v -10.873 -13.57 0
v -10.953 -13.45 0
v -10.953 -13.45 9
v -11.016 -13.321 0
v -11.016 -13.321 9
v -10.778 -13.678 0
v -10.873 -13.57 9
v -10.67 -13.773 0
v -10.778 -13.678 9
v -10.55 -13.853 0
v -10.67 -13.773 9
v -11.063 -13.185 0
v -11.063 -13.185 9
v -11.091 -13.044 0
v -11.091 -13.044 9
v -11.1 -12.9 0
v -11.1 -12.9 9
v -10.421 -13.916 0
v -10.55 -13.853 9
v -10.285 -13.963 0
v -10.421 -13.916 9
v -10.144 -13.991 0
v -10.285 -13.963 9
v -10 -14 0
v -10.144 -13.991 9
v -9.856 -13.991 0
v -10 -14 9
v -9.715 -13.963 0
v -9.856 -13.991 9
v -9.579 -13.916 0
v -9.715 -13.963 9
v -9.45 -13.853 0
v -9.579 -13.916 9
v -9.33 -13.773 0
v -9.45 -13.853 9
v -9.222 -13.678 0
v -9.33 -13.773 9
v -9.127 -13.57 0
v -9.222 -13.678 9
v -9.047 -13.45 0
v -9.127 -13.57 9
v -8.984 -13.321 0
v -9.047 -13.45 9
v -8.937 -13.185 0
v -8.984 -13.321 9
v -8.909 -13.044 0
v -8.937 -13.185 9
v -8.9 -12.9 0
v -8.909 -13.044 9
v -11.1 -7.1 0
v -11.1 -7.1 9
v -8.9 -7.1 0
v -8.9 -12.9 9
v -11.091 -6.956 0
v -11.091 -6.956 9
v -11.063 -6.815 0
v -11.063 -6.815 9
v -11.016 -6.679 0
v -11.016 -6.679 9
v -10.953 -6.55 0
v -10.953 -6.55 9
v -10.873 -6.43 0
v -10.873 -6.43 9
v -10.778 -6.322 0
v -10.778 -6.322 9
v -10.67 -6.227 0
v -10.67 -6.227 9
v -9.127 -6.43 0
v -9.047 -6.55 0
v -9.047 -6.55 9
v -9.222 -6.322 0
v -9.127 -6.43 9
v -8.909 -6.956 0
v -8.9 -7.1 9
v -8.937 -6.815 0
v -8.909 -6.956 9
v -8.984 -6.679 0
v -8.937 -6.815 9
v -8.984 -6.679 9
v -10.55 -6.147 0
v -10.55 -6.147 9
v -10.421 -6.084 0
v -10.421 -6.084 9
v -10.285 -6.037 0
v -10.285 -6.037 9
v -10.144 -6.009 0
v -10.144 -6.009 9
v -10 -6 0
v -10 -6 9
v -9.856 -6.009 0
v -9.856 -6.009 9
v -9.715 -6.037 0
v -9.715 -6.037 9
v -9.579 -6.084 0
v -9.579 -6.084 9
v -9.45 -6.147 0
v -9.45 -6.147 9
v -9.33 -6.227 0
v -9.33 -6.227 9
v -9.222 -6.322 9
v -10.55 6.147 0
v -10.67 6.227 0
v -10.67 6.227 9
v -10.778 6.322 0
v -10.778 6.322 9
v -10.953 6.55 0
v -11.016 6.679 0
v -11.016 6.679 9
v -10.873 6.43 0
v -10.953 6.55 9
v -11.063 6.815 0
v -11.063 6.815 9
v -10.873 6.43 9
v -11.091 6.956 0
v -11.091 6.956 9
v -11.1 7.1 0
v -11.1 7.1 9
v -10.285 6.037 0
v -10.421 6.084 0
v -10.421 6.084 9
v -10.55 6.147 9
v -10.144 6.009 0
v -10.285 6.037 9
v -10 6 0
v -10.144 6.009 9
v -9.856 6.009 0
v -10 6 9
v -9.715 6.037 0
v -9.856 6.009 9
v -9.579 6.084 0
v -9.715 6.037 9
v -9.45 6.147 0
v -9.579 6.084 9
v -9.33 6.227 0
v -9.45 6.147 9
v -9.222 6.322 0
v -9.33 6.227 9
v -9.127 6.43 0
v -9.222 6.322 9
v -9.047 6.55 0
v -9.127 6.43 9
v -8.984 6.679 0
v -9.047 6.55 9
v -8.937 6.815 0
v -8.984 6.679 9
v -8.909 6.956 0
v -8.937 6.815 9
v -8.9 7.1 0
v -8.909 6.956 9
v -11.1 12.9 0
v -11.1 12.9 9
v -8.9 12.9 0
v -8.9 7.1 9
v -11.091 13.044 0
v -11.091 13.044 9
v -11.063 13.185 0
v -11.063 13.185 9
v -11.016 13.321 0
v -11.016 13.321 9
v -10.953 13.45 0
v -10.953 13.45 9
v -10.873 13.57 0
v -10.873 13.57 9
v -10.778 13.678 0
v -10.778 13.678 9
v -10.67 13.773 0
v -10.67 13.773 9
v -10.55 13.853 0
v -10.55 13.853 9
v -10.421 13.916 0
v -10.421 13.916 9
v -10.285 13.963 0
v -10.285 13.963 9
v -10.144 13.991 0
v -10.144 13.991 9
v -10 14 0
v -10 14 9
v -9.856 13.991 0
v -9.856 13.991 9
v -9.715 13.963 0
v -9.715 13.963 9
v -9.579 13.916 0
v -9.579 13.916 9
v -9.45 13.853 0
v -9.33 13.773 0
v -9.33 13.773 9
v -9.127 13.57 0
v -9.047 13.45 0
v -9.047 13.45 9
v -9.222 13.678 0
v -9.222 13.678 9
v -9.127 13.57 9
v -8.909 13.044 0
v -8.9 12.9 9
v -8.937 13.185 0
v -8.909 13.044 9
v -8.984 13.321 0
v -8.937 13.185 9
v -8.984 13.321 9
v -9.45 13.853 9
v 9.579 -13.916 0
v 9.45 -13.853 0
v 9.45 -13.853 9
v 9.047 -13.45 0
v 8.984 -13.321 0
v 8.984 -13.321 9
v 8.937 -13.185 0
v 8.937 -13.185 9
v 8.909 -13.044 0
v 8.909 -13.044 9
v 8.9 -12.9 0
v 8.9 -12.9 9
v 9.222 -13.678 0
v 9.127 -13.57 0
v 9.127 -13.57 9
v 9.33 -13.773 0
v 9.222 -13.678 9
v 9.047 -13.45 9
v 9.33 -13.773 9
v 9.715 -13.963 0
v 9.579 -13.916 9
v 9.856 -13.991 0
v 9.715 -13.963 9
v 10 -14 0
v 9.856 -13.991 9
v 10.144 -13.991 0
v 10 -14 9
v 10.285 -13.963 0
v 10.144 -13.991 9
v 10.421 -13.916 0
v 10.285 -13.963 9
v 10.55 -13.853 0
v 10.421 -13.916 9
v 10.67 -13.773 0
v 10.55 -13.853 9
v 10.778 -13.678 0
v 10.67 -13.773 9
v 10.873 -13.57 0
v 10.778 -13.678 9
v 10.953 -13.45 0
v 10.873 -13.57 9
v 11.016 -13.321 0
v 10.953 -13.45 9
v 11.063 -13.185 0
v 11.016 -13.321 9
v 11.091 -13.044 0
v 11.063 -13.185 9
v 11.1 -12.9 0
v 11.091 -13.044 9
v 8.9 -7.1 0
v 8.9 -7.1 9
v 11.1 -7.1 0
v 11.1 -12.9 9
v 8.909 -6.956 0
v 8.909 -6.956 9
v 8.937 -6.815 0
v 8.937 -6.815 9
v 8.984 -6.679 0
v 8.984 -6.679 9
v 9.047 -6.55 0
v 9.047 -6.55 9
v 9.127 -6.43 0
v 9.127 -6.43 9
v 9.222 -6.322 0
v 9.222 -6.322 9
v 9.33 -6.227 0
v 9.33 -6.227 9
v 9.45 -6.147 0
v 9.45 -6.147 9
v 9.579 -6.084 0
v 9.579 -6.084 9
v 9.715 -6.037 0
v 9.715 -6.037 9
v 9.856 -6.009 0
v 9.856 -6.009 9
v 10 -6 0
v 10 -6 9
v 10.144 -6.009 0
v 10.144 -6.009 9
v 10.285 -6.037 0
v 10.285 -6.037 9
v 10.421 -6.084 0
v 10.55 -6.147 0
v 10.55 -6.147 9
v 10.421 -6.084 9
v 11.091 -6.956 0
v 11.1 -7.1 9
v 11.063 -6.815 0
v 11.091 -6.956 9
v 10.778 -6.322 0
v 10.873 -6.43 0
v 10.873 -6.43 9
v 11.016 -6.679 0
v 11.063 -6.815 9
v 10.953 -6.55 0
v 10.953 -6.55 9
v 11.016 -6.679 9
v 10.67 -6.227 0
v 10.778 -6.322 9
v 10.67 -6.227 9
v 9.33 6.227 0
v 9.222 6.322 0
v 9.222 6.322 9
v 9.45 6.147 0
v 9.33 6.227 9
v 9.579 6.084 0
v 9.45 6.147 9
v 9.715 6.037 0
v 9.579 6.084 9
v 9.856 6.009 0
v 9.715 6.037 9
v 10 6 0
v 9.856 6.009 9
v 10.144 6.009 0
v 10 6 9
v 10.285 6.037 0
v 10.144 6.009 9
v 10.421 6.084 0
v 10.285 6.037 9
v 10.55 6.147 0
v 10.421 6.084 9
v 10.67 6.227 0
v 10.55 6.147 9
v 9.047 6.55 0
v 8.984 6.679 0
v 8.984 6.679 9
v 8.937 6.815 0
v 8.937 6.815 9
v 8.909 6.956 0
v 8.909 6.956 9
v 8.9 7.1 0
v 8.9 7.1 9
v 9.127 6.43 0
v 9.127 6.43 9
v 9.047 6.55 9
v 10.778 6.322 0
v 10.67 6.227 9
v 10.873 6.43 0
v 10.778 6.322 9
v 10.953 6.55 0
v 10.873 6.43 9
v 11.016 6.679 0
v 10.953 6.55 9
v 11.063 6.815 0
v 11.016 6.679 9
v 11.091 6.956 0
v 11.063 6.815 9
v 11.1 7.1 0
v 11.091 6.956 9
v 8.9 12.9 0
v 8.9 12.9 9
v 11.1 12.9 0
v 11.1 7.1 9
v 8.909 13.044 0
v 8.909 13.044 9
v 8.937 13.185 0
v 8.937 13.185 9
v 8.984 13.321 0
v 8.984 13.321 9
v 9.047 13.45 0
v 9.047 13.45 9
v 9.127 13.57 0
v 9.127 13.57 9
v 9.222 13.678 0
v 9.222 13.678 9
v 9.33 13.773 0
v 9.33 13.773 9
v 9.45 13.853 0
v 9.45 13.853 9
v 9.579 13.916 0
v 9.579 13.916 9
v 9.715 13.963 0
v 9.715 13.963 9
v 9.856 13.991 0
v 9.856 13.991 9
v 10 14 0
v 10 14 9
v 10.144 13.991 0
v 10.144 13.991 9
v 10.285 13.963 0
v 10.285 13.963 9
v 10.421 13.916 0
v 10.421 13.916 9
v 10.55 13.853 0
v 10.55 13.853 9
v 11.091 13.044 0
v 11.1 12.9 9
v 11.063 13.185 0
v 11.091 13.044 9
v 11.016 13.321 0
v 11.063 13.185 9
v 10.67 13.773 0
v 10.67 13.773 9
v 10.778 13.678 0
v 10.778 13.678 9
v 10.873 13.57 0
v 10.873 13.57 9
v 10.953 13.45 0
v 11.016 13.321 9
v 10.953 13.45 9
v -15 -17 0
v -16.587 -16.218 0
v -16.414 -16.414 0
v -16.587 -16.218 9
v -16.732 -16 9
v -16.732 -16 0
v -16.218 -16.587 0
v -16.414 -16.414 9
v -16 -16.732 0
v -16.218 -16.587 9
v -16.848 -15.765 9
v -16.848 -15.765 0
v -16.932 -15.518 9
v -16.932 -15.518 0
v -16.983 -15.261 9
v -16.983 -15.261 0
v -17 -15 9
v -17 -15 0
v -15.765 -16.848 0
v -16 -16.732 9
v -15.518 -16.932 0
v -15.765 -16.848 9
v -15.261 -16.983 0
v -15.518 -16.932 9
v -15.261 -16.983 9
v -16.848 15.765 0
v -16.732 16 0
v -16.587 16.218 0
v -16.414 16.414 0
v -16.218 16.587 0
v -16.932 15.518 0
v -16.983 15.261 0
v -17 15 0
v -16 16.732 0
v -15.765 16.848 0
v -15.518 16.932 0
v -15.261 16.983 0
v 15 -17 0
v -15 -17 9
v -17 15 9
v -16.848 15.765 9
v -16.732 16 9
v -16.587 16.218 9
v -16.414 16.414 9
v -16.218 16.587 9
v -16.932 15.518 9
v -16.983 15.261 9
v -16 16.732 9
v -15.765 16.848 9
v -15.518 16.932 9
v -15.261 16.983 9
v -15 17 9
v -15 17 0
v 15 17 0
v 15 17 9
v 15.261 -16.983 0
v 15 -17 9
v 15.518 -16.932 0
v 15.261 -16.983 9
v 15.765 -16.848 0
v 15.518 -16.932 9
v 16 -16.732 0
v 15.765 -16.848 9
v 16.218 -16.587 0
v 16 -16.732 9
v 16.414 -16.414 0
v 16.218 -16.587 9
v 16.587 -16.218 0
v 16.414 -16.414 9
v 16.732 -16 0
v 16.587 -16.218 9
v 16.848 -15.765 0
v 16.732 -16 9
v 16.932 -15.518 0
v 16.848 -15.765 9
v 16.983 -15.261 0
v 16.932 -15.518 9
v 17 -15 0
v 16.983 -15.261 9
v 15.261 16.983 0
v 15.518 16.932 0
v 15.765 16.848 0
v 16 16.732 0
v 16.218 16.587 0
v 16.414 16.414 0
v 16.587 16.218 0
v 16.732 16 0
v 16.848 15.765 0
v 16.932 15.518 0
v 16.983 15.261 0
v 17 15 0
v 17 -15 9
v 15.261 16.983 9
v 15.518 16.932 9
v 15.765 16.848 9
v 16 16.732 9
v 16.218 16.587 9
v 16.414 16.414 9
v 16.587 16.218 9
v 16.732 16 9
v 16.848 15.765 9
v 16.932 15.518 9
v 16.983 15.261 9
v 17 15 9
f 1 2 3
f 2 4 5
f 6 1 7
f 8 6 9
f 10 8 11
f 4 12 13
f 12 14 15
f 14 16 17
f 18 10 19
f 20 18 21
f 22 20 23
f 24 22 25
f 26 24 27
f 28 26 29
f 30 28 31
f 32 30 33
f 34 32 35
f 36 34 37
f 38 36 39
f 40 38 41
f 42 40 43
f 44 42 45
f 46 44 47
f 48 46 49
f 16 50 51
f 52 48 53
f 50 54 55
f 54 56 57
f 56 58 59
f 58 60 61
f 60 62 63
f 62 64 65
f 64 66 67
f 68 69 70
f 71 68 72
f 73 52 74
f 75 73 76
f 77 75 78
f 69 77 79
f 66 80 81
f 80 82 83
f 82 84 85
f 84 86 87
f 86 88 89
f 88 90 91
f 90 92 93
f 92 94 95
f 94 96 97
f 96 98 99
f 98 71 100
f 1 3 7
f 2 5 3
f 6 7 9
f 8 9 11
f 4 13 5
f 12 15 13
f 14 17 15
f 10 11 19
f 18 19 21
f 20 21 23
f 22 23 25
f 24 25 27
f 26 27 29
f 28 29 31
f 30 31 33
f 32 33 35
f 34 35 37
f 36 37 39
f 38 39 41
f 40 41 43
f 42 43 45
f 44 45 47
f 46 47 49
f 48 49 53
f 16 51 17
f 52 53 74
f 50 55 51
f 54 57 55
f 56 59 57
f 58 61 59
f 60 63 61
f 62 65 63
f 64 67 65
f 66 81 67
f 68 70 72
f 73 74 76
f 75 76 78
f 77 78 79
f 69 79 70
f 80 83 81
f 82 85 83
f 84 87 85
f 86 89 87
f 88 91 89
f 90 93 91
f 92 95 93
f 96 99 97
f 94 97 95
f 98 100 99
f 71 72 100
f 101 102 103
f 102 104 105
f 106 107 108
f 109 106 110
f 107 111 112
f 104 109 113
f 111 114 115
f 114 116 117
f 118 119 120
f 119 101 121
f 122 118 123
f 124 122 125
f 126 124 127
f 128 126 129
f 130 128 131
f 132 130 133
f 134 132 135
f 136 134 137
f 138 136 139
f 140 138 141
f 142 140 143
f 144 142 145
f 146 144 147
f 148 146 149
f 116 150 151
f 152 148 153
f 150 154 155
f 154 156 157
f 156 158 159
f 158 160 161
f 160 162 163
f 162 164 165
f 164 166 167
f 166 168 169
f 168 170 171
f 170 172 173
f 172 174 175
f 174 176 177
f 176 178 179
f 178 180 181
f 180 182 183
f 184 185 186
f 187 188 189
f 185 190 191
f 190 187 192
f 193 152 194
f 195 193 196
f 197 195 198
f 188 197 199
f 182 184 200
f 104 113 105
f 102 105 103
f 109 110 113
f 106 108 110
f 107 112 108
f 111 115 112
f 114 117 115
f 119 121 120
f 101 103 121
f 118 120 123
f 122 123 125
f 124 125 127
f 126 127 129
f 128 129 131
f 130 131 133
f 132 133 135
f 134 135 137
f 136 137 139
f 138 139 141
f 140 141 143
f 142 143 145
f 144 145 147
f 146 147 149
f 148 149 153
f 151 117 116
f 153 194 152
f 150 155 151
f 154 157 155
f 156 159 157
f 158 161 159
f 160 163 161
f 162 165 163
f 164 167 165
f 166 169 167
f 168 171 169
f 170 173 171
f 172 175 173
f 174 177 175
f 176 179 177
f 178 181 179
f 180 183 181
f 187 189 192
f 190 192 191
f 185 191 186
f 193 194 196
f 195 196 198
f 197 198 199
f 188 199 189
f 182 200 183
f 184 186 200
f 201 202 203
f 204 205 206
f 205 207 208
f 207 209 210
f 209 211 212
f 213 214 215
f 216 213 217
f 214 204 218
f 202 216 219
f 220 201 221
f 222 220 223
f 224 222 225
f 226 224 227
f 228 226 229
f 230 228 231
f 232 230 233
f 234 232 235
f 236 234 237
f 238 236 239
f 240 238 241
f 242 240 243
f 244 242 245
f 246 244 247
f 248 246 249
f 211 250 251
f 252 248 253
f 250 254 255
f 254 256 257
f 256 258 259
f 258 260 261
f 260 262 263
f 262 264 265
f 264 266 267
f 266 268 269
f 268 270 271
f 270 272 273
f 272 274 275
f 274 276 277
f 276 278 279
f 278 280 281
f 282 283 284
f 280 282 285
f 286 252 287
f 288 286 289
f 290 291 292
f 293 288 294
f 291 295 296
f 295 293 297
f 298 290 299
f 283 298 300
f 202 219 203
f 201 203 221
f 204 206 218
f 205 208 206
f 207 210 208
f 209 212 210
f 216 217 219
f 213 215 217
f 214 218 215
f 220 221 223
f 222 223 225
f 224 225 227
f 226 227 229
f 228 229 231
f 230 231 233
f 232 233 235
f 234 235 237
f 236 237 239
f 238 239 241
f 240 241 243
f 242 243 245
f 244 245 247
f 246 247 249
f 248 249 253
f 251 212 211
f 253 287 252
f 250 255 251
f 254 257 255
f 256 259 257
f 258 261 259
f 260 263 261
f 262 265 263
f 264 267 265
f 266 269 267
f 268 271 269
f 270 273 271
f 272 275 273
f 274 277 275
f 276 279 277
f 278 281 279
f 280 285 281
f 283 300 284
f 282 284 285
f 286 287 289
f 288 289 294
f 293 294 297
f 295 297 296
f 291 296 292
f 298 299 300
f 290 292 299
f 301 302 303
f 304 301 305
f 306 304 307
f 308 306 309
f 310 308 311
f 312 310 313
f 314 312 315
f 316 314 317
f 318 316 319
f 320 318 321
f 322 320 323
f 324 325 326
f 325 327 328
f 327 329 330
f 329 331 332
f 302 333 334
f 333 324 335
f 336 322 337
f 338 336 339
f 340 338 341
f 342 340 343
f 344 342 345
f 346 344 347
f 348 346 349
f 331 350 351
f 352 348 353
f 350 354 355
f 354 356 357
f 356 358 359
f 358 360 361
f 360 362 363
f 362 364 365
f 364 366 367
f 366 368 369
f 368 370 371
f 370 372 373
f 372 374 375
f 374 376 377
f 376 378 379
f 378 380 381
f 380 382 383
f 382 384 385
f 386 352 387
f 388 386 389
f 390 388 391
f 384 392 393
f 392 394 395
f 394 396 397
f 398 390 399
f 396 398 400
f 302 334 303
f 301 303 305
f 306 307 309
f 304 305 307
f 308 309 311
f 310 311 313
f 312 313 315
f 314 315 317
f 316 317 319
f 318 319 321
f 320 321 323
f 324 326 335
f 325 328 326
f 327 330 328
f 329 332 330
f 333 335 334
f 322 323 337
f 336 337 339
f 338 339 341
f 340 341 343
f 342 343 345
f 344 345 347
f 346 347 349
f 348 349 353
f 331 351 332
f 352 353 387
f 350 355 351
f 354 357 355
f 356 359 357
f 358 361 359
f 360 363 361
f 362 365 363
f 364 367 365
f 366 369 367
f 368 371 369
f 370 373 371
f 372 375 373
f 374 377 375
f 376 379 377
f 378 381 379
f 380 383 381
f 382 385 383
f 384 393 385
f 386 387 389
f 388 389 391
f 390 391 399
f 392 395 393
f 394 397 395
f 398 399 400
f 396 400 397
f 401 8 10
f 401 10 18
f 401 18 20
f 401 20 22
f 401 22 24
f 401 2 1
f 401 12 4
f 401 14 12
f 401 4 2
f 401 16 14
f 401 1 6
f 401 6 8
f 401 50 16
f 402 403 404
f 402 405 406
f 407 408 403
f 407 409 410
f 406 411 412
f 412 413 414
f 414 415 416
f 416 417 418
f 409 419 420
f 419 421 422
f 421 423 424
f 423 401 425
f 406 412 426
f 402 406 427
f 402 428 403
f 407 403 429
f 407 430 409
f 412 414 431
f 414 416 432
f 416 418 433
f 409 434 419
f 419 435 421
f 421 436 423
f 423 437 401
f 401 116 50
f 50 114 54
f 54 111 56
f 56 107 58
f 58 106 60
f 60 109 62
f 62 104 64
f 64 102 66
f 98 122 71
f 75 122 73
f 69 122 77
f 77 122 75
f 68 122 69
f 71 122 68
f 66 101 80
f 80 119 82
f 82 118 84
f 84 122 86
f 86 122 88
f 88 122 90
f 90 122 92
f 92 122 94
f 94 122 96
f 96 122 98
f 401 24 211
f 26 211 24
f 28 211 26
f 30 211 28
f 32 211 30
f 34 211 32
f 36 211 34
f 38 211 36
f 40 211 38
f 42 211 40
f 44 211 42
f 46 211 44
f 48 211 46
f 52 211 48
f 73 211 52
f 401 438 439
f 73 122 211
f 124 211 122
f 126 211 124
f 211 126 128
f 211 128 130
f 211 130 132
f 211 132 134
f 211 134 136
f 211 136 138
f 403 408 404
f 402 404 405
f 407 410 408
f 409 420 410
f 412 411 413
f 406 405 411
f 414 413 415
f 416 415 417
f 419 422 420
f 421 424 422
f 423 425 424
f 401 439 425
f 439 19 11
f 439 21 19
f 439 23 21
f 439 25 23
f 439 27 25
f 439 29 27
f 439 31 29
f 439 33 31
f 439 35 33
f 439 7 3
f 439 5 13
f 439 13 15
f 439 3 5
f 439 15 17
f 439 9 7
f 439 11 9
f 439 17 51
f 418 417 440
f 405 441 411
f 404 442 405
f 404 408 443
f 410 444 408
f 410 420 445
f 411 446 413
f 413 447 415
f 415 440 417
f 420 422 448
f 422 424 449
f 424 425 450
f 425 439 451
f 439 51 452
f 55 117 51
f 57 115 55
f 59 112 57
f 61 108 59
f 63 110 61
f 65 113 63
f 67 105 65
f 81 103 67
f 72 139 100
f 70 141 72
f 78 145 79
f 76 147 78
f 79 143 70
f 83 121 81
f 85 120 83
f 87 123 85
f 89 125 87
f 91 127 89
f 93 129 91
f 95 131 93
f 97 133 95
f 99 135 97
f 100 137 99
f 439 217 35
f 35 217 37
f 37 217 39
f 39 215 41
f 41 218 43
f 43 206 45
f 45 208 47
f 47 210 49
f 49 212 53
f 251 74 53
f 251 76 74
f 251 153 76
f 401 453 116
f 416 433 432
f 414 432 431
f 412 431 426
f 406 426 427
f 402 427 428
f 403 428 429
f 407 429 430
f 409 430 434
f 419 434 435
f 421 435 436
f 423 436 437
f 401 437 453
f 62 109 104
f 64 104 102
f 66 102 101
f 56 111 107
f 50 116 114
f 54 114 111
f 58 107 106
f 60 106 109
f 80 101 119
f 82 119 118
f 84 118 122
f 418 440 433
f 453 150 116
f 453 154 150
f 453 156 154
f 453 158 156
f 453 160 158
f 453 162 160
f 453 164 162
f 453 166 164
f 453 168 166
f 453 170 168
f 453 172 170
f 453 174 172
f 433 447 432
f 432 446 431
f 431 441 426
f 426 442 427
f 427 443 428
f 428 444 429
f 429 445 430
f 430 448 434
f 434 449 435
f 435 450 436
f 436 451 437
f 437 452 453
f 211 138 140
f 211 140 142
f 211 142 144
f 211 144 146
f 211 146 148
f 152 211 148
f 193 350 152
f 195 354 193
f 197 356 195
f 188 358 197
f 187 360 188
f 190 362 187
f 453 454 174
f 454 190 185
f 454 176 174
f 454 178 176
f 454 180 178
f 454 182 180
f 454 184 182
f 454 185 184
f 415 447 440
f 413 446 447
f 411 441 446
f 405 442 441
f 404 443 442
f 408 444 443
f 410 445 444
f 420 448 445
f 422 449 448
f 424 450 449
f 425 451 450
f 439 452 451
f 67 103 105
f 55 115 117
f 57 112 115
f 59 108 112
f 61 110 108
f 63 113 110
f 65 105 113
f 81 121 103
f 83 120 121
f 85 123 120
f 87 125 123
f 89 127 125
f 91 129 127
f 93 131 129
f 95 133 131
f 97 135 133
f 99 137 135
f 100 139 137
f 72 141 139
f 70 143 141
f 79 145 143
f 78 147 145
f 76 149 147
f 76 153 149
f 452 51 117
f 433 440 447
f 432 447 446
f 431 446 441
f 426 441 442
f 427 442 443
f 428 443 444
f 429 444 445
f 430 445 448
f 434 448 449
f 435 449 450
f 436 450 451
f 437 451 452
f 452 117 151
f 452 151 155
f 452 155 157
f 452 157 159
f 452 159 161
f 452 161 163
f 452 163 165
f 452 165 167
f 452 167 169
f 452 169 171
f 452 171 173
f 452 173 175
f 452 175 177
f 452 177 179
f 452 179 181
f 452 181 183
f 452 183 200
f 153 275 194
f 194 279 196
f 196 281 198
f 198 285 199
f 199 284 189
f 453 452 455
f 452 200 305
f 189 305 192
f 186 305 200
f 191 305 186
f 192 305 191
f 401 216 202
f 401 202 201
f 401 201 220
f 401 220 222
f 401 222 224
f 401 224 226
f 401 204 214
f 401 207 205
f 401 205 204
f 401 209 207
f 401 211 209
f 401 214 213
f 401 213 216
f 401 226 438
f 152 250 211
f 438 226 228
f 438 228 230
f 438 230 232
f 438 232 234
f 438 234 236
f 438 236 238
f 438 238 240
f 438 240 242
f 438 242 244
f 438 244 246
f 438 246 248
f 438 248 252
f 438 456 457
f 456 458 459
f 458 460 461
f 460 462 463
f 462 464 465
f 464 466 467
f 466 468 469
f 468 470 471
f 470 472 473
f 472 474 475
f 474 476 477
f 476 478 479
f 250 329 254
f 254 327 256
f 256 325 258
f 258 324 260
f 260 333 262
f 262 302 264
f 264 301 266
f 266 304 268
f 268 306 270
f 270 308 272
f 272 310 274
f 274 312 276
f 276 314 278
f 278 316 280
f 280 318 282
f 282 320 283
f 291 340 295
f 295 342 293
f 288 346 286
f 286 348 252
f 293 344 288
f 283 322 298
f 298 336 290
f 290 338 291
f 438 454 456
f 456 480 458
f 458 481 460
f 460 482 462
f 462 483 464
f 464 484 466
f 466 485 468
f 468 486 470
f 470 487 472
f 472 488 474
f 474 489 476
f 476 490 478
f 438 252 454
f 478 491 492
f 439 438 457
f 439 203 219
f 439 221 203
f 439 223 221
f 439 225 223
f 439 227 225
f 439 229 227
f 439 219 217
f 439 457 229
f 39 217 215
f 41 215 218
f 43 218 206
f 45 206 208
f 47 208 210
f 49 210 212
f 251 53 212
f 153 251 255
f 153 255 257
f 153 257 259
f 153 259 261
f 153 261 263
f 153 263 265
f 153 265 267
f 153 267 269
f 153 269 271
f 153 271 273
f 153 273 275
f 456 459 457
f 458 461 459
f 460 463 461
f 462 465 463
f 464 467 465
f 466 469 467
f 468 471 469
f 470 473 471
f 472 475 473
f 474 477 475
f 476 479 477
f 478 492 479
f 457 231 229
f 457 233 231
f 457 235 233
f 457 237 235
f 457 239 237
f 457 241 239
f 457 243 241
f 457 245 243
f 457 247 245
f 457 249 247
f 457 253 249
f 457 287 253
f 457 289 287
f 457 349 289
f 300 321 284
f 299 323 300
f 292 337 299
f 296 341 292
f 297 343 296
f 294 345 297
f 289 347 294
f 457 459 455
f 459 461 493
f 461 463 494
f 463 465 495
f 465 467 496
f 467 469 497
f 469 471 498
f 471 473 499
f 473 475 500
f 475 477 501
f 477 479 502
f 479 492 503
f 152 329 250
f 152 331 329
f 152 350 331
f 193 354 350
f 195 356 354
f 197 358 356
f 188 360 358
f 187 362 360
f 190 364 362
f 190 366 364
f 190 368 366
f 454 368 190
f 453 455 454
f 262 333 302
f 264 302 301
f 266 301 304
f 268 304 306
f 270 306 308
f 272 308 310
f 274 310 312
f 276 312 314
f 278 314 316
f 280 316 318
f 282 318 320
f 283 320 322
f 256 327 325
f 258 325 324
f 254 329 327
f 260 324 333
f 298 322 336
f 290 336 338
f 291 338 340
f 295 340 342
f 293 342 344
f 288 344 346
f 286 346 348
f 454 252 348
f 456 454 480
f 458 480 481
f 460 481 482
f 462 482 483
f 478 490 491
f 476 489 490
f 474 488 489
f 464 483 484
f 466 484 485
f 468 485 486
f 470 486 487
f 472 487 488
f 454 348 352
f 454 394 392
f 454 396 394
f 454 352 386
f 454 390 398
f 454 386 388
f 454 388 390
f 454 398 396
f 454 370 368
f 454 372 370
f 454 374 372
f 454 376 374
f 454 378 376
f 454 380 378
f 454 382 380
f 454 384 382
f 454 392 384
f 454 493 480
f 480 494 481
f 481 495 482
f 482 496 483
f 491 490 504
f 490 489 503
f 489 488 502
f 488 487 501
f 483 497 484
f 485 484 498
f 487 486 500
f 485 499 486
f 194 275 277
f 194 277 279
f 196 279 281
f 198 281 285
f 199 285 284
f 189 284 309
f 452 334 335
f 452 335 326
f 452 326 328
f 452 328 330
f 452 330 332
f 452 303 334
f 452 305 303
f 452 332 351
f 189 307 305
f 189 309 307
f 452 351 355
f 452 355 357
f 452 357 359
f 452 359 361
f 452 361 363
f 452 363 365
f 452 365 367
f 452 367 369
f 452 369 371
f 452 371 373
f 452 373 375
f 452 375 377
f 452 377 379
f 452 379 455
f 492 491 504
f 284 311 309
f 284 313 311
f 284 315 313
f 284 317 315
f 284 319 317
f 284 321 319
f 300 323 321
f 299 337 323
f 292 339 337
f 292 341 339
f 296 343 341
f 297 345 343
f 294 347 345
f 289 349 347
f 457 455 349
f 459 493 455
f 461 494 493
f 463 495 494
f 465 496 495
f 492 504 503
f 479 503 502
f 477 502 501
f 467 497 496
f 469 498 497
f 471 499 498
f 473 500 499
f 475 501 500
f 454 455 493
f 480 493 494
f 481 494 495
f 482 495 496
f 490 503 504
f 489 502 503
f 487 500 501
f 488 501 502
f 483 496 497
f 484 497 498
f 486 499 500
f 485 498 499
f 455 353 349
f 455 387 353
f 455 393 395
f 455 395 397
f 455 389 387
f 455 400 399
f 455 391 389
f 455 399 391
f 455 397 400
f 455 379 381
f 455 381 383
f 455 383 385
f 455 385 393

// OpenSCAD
// Spacer for the original-height camera stand. Dimensions in mm; no libraries.
height = 9;
base_size = 34;
corner_radius = 2;
grid_pitch = 5;
grid_columns = 4;
grid_rows = 4;
bolt_diameter = 2;
clearance = 0.2;
slot_length = 8;

/* [Hidden] */
$fn = 48;
eps = 0.05;
slot_width = bolt_diameter + clearance;
assert(height > 0 && corner_radius > 0 && base_size > 2 * corner_radius);
assert(grid_pitch > 0 && grid_columns >= 1 && grid_rows >= 1
       && grid_columns == floor(grid_columns) && grid_rows == floor(grid_rows));
assert(slot_width > 0 && slot_length >= slot_width
       && grid_columns * grid_pitch + slot_width + 4 <= base_size
       && grid_rows * grid_pitch + slot_length + 4 <= base_size);

difference() {
    linear_extrude(height)
        hull()
            for (x = [-1, 1], y = [-1, 1])
                translate([x * (base_size / 2 - corner_radius),
                           y * (base_size / 2 - corner_radius)]) circle(r = corner_radius);
    for (x = [-1, 1], y = [-1, 1])
        translate([x * grid_columns * grid_pitch / 2, y * grid_rows * grid_pitch / 2, -eps])
            linear_extrude(height + 2 * eps)
                hull()
                    for (end = [-1, 1])
                        translate([0, end * (slot_length - slot_width) / 2]) circle(d = slot_width);
}
